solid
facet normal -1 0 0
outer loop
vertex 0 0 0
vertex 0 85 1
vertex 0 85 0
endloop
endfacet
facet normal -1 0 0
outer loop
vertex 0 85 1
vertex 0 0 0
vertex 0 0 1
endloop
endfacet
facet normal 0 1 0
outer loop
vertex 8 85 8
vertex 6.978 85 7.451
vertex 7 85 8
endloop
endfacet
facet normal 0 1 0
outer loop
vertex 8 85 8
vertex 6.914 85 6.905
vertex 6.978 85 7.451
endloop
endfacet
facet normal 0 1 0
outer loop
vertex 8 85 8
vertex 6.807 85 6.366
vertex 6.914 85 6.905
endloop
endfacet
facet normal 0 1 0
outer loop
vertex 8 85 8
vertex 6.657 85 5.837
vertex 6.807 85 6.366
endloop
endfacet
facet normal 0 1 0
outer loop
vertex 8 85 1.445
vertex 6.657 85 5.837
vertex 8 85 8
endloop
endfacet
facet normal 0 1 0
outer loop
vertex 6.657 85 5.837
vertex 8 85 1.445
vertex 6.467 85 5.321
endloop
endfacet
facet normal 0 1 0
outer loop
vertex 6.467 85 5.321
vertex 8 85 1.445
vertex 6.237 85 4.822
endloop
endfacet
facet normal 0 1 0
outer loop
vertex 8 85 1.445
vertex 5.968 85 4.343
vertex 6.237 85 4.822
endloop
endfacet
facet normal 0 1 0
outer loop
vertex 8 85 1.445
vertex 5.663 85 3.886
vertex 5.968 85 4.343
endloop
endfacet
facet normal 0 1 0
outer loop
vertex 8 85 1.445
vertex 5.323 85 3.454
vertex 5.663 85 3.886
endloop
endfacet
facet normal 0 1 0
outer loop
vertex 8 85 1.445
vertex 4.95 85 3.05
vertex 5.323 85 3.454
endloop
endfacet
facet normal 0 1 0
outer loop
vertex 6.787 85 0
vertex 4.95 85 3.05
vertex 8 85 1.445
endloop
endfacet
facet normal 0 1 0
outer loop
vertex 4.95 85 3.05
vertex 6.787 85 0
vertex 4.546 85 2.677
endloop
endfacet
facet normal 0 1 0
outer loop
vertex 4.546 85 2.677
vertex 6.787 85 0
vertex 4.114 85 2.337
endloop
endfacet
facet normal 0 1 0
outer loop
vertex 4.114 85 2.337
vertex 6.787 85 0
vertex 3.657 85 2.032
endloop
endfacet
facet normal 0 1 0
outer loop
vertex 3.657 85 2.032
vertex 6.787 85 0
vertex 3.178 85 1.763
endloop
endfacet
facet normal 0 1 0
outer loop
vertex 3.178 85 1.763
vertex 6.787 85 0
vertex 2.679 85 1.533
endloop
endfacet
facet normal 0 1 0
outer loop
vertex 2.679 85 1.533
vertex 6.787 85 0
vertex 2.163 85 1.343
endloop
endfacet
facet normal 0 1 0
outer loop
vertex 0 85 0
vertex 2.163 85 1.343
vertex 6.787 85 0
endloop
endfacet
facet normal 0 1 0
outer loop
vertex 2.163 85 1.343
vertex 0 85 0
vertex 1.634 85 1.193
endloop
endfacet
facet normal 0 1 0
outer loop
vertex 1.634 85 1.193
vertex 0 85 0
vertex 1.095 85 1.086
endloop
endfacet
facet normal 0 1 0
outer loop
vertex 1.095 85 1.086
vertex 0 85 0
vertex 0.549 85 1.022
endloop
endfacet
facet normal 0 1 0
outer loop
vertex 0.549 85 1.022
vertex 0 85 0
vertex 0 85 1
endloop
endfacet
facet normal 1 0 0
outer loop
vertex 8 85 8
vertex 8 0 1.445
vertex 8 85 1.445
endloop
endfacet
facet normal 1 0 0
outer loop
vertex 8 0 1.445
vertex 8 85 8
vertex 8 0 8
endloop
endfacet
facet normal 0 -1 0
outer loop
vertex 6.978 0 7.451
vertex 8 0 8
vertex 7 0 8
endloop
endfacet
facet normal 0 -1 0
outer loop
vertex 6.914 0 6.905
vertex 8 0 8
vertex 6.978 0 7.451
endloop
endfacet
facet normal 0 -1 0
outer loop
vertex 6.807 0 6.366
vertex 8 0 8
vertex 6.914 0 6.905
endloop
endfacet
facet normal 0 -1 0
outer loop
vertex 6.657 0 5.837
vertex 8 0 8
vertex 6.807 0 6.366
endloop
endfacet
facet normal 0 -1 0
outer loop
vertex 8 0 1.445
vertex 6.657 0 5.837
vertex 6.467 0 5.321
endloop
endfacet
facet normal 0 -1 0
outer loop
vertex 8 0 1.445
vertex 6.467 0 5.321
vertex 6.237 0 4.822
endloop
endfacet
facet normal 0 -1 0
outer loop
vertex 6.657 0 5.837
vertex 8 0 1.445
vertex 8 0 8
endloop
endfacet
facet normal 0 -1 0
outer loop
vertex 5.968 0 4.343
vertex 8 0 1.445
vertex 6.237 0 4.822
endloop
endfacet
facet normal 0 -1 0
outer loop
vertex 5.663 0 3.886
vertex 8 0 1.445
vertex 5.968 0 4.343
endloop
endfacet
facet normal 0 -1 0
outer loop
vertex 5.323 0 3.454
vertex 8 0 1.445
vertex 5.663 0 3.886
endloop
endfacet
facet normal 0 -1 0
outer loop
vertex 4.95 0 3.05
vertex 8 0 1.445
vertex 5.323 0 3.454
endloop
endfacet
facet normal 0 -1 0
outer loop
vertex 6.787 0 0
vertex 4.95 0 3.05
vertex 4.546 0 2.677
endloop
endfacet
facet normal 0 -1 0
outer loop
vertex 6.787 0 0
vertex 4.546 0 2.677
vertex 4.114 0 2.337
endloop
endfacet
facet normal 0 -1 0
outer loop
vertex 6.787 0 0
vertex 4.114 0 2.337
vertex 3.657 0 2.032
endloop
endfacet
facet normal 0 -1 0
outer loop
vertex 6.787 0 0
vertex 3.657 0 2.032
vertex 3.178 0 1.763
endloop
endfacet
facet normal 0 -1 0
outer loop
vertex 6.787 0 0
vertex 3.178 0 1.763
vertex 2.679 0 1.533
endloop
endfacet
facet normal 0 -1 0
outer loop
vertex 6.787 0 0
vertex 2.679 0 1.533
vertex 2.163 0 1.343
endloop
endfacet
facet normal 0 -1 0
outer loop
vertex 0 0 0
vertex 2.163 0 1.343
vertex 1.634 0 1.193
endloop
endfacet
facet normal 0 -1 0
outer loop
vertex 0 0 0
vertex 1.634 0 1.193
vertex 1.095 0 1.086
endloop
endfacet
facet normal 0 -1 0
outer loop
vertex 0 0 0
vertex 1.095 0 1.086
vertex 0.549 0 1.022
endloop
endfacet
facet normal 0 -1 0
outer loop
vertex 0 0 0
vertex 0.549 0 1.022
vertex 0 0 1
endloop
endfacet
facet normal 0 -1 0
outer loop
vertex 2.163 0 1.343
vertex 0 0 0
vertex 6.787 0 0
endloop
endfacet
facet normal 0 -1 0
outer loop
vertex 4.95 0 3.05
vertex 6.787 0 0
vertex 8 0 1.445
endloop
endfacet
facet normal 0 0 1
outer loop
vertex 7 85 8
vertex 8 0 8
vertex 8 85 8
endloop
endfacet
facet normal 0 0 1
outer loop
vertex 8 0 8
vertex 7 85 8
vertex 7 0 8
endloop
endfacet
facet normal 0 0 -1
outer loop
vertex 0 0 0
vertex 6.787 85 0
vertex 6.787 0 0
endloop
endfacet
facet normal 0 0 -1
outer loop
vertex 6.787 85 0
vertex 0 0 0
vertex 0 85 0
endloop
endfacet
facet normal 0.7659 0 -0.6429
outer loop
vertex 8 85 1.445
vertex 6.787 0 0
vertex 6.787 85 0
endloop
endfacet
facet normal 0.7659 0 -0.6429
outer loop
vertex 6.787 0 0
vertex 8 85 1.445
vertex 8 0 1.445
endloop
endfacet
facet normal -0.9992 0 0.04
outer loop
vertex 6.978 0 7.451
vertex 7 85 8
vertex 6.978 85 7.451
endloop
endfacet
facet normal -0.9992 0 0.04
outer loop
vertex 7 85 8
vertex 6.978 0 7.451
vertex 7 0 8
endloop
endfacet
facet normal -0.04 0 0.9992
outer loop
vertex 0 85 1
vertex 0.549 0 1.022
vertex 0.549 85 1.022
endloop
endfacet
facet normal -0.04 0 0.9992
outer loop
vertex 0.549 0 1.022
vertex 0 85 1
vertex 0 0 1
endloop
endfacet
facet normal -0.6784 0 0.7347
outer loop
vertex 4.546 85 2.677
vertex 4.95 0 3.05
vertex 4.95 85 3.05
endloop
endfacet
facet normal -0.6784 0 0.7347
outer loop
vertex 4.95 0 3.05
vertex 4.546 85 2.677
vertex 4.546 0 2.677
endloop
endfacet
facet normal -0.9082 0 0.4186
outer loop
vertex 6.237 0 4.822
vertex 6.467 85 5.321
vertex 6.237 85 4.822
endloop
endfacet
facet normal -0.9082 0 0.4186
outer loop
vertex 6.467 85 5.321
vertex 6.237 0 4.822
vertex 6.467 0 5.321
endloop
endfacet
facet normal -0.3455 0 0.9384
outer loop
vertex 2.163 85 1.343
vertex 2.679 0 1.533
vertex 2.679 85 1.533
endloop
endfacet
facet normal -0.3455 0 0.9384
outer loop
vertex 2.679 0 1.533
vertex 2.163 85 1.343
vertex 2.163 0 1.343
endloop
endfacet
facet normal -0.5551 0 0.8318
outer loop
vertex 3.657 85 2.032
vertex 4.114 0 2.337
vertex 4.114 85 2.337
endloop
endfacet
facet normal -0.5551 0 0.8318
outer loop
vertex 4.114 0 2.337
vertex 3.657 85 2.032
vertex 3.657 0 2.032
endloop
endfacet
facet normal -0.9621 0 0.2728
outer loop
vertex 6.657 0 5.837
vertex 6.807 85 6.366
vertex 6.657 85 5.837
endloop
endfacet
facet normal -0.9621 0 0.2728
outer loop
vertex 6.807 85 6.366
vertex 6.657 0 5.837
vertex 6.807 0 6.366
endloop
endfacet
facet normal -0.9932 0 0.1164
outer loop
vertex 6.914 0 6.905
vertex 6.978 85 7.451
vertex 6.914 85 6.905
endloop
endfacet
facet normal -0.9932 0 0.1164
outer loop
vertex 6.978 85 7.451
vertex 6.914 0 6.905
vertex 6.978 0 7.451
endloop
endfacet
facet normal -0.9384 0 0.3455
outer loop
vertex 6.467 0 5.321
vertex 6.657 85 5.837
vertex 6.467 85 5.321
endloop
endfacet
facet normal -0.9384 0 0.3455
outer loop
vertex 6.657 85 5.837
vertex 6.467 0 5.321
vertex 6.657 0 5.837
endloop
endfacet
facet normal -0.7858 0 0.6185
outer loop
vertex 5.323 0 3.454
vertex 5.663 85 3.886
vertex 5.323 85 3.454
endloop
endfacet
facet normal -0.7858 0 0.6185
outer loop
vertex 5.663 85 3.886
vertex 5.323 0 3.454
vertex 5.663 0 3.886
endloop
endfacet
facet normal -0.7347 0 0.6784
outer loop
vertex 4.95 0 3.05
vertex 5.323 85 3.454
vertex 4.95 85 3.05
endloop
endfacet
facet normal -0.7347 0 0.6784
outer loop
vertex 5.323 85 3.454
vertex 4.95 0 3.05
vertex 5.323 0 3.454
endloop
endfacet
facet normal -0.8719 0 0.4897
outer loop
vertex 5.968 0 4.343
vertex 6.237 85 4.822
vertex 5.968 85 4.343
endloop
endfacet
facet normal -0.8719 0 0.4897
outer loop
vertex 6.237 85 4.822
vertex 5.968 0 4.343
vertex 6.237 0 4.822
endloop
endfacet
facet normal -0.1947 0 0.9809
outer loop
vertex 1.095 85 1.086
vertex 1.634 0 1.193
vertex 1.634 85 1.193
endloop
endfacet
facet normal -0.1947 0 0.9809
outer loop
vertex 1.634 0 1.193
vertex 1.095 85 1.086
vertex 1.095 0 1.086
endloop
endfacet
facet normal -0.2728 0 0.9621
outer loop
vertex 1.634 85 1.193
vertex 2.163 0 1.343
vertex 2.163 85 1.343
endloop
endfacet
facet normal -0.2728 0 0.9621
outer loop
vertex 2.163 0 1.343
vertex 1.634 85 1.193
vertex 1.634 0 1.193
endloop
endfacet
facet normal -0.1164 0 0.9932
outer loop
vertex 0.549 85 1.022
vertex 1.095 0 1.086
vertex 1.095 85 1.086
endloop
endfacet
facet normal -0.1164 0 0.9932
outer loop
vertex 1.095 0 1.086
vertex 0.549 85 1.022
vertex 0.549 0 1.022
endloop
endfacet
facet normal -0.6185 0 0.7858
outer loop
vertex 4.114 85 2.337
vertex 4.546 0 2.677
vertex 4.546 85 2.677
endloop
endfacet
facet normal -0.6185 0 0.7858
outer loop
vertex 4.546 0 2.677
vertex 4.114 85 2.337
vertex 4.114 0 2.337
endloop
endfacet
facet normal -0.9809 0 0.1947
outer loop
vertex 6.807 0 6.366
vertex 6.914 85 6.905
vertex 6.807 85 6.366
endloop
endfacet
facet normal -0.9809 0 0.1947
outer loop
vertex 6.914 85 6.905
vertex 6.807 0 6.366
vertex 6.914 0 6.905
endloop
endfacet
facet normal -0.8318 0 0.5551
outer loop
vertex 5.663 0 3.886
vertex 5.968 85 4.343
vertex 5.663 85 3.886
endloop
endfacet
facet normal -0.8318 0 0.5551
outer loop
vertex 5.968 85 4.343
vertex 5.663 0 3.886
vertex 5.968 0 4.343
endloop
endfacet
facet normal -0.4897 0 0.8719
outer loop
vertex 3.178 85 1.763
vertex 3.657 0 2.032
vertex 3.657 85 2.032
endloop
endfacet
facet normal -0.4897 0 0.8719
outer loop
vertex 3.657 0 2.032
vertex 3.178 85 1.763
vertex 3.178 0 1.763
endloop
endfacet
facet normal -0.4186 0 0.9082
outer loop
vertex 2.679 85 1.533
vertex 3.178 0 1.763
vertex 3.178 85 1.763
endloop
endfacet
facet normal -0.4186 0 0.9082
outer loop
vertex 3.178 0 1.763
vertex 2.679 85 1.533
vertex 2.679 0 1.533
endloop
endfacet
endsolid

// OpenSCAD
$fn=80;

translate([0,0,8]) rotate([-90,0,0]) difference() {
   cube([8,8,85]);
   translate([13.5,0,0]) rotate([0,0,40]) translate([0,4,-1]) cube([8,8,90]);
   translate([0,0,-1]) cylinder(r=7.0,h=90);
}
